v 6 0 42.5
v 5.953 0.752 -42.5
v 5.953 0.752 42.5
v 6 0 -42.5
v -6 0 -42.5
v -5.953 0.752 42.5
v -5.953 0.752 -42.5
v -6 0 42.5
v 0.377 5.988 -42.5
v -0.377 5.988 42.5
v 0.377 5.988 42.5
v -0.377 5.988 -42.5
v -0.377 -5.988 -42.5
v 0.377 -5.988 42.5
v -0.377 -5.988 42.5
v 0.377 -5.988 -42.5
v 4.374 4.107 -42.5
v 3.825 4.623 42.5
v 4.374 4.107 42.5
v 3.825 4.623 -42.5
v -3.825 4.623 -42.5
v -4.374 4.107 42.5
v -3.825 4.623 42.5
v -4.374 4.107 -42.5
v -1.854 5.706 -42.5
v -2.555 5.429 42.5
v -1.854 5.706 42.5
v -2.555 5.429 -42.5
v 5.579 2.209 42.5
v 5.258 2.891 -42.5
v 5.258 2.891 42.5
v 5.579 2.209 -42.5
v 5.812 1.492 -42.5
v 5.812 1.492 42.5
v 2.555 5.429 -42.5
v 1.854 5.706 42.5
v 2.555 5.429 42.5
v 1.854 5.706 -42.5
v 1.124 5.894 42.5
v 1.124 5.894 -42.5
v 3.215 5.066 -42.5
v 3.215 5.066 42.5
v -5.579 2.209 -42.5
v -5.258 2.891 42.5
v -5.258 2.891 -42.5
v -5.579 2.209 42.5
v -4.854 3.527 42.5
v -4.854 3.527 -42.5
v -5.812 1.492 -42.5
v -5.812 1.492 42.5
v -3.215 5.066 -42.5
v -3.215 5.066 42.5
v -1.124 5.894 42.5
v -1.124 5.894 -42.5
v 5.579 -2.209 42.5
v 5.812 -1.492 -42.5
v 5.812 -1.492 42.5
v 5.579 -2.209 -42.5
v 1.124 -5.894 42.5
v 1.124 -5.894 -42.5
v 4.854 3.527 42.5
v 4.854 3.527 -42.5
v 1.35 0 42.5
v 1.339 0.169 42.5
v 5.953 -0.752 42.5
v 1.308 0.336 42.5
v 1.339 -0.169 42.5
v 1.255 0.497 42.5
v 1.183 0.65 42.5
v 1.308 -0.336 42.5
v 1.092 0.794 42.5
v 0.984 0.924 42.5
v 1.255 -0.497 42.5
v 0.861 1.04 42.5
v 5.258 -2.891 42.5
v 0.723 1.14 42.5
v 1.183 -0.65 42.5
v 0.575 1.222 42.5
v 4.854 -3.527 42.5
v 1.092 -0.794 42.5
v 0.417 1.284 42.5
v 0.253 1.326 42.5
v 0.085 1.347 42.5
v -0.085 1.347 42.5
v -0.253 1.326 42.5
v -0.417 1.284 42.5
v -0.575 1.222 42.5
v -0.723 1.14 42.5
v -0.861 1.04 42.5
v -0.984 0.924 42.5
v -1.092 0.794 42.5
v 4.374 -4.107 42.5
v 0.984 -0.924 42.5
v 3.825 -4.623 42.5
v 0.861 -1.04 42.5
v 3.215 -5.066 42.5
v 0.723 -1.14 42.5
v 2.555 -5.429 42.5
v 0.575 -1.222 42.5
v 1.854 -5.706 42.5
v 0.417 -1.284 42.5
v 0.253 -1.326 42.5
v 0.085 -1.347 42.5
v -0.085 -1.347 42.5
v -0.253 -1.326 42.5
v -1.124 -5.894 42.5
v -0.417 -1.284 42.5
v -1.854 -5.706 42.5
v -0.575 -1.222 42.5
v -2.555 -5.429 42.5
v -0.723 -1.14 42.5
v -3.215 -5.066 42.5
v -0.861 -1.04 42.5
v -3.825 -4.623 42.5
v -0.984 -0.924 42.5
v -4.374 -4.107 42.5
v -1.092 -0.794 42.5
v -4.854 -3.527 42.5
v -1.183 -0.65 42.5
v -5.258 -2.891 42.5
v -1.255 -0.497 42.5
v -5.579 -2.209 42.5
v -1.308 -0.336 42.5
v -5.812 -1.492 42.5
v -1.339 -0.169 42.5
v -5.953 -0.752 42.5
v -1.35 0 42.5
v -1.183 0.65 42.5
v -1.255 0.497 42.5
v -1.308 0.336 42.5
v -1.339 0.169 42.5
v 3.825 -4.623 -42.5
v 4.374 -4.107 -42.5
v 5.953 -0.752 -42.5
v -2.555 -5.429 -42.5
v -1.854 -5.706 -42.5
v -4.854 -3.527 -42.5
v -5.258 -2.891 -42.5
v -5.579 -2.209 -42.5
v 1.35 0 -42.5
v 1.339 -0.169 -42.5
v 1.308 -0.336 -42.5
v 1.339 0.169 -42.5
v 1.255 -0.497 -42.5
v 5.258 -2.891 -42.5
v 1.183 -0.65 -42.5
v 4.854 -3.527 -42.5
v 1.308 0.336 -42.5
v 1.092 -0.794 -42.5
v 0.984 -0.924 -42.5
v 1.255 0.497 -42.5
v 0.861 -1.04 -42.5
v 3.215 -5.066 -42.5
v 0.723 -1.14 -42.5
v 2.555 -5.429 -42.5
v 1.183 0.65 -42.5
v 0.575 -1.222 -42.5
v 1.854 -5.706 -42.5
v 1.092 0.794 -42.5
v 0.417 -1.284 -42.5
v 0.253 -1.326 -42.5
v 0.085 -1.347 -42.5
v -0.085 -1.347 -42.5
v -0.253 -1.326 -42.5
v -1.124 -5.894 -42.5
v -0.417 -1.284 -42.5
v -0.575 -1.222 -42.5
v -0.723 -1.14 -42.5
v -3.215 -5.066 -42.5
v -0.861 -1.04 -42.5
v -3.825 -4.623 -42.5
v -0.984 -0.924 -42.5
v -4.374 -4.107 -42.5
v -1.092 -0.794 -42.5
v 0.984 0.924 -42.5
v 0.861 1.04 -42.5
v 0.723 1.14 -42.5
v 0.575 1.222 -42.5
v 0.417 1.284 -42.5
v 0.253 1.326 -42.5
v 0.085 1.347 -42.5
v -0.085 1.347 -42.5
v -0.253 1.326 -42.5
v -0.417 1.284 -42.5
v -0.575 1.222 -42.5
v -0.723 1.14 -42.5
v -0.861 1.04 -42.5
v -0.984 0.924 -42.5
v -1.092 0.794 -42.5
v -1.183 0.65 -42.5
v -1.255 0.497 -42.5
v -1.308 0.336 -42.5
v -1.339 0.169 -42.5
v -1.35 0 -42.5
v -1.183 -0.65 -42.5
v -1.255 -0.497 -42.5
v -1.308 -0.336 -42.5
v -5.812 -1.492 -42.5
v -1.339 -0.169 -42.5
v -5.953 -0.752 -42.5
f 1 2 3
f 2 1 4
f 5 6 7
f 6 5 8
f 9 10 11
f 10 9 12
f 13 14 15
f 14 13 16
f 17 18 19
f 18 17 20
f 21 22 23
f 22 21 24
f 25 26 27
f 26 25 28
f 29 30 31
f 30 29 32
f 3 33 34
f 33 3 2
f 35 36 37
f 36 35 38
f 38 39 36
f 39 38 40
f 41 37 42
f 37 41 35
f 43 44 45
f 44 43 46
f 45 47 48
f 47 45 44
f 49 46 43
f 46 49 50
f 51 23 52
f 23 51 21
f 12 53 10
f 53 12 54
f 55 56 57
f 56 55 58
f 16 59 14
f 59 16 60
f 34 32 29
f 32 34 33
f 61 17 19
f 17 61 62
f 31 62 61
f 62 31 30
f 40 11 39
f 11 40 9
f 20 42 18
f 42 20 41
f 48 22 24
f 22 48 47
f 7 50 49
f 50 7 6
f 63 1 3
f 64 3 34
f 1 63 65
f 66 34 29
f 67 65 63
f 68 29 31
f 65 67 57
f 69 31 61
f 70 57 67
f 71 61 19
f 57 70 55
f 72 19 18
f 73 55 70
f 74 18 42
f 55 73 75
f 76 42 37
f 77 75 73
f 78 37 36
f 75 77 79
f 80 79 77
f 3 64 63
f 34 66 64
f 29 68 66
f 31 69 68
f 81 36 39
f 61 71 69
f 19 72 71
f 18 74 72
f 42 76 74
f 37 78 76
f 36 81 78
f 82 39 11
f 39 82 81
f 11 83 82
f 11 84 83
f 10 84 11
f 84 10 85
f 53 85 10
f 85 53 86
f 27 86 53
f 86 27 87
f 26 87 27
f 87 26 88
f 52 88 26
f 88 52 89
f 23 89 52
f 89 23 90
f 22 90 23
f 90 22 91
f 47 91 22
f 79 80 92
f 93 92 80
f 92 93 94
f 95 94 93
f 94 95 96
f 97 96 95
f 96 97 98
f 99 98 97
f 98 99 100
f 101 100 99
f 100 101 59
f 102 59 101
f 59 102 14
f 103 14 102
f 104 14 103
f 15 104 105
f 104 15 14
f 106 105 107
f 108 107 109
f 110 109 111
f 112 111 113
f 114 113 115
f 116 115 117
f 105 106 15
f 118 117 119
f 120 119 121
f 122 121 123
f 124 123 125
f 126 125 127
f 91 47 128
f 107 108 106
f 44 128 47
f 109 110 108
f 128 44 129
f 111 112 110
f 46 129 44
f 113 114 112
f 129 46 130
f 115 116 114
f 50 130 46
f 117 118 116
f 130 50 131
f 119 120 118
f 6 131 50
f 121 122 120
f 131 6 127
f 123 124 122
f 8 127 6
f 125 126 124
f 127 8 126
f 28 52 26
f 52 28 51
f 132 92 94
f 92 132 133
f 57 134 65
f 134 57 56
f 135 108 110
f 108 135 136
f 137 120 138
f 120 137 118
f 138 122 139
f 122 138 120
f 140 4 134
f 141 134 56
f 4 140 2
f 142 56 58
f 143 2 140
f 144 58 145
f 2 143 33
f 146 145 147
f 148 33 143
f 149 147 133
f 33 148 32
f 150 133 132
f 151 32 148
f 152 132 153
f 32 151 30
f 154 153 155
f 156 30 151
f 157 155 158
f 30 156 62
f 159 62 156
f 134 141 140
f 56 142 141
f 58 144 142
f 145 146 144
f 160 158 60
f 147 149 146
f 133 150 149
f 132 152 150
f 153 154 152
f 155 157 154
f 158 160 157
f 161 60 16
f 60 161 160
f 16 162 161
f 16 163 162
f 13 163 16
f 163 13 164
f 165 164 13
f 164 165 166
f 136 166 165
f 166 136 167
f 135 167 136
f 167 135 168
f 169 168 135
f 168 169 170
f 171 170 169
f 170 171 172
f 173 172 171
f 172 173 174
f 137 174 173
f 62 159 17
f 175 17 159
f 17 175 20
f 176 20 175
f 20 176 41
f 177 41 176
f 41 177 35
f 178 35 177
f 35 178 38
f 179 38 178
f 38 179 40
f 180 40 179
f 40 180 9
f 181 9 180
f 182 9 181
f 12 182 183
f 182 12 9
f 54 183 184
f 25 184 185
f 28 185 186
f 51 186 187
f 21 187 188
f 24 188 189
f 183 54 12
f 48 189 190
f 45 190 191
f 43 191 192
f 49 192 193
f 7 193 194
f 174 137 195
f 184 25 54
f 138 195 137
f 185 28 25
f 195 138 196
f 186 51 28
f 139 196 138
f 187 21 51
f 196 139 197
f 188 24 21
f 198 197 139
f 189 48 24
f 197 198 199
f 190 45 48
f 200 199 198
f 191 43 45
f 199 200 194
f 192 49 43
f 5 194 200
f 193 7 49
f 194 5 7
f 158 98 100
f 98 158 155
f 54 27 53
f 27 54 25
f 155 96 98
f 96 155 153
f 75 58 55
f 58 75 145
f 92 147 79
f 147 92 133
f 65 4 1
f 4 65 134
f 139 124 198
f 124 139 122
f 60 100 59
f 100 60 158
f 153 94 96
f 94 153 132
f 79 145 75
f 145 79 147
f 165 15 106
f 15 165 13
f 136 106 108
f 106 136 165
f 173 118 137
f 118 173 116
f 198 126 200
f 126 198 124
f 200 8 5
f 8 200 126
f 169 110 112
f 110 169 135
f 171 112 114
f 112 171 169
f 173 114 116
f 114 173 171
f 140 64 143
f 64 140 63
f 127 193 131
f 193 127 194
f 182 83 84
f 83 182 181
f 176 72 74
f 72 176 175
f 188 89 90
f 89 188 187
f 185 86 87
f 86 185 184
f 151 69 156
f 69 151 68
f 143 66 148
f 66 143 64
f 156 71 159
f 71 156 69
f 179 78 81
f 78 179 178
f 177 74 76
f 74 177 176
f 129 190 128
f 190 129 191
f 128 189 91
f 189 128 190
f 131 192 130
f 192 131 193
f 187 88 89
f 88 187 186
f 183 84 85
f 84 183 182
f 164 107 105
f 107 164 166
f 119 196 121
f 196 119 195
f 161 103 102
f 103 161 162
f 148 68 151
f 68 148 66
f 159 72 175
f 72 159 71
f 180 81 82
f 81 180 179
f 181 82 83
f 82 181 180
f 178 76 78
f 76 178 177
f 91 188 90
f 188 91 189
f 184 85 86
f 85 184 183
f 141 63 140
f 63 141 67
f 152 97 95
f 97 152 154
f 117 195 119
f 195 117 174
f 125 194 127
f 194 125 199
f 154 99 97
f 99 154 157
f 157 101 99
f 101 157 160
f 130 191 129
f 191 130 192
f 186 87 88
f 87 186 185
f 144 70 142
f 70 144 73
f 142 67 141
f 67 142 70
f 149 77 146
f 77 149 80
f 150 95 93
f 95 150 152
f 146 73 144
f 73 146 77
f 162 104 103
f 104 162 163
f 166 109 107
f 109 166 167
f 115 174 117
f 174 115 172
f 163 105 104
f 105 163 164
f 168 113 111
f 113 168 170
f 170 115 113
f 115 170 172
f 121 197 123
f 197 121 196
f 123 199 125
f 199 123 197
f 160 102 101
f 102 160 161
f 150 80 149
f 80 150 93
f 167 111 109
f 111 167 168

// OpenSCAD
$fn = 50;


difference() {
	union() {
		translate(v = [0, 0, -42.5000000000]) {
			cylinder(h = 85, r = 6.0000000000);
		}
	}
	union() {
		translate(v = [0, 0, -100.0000000000]) {
			cylinder(h = 200, r = 1.3500000000);
		}
	}
}
